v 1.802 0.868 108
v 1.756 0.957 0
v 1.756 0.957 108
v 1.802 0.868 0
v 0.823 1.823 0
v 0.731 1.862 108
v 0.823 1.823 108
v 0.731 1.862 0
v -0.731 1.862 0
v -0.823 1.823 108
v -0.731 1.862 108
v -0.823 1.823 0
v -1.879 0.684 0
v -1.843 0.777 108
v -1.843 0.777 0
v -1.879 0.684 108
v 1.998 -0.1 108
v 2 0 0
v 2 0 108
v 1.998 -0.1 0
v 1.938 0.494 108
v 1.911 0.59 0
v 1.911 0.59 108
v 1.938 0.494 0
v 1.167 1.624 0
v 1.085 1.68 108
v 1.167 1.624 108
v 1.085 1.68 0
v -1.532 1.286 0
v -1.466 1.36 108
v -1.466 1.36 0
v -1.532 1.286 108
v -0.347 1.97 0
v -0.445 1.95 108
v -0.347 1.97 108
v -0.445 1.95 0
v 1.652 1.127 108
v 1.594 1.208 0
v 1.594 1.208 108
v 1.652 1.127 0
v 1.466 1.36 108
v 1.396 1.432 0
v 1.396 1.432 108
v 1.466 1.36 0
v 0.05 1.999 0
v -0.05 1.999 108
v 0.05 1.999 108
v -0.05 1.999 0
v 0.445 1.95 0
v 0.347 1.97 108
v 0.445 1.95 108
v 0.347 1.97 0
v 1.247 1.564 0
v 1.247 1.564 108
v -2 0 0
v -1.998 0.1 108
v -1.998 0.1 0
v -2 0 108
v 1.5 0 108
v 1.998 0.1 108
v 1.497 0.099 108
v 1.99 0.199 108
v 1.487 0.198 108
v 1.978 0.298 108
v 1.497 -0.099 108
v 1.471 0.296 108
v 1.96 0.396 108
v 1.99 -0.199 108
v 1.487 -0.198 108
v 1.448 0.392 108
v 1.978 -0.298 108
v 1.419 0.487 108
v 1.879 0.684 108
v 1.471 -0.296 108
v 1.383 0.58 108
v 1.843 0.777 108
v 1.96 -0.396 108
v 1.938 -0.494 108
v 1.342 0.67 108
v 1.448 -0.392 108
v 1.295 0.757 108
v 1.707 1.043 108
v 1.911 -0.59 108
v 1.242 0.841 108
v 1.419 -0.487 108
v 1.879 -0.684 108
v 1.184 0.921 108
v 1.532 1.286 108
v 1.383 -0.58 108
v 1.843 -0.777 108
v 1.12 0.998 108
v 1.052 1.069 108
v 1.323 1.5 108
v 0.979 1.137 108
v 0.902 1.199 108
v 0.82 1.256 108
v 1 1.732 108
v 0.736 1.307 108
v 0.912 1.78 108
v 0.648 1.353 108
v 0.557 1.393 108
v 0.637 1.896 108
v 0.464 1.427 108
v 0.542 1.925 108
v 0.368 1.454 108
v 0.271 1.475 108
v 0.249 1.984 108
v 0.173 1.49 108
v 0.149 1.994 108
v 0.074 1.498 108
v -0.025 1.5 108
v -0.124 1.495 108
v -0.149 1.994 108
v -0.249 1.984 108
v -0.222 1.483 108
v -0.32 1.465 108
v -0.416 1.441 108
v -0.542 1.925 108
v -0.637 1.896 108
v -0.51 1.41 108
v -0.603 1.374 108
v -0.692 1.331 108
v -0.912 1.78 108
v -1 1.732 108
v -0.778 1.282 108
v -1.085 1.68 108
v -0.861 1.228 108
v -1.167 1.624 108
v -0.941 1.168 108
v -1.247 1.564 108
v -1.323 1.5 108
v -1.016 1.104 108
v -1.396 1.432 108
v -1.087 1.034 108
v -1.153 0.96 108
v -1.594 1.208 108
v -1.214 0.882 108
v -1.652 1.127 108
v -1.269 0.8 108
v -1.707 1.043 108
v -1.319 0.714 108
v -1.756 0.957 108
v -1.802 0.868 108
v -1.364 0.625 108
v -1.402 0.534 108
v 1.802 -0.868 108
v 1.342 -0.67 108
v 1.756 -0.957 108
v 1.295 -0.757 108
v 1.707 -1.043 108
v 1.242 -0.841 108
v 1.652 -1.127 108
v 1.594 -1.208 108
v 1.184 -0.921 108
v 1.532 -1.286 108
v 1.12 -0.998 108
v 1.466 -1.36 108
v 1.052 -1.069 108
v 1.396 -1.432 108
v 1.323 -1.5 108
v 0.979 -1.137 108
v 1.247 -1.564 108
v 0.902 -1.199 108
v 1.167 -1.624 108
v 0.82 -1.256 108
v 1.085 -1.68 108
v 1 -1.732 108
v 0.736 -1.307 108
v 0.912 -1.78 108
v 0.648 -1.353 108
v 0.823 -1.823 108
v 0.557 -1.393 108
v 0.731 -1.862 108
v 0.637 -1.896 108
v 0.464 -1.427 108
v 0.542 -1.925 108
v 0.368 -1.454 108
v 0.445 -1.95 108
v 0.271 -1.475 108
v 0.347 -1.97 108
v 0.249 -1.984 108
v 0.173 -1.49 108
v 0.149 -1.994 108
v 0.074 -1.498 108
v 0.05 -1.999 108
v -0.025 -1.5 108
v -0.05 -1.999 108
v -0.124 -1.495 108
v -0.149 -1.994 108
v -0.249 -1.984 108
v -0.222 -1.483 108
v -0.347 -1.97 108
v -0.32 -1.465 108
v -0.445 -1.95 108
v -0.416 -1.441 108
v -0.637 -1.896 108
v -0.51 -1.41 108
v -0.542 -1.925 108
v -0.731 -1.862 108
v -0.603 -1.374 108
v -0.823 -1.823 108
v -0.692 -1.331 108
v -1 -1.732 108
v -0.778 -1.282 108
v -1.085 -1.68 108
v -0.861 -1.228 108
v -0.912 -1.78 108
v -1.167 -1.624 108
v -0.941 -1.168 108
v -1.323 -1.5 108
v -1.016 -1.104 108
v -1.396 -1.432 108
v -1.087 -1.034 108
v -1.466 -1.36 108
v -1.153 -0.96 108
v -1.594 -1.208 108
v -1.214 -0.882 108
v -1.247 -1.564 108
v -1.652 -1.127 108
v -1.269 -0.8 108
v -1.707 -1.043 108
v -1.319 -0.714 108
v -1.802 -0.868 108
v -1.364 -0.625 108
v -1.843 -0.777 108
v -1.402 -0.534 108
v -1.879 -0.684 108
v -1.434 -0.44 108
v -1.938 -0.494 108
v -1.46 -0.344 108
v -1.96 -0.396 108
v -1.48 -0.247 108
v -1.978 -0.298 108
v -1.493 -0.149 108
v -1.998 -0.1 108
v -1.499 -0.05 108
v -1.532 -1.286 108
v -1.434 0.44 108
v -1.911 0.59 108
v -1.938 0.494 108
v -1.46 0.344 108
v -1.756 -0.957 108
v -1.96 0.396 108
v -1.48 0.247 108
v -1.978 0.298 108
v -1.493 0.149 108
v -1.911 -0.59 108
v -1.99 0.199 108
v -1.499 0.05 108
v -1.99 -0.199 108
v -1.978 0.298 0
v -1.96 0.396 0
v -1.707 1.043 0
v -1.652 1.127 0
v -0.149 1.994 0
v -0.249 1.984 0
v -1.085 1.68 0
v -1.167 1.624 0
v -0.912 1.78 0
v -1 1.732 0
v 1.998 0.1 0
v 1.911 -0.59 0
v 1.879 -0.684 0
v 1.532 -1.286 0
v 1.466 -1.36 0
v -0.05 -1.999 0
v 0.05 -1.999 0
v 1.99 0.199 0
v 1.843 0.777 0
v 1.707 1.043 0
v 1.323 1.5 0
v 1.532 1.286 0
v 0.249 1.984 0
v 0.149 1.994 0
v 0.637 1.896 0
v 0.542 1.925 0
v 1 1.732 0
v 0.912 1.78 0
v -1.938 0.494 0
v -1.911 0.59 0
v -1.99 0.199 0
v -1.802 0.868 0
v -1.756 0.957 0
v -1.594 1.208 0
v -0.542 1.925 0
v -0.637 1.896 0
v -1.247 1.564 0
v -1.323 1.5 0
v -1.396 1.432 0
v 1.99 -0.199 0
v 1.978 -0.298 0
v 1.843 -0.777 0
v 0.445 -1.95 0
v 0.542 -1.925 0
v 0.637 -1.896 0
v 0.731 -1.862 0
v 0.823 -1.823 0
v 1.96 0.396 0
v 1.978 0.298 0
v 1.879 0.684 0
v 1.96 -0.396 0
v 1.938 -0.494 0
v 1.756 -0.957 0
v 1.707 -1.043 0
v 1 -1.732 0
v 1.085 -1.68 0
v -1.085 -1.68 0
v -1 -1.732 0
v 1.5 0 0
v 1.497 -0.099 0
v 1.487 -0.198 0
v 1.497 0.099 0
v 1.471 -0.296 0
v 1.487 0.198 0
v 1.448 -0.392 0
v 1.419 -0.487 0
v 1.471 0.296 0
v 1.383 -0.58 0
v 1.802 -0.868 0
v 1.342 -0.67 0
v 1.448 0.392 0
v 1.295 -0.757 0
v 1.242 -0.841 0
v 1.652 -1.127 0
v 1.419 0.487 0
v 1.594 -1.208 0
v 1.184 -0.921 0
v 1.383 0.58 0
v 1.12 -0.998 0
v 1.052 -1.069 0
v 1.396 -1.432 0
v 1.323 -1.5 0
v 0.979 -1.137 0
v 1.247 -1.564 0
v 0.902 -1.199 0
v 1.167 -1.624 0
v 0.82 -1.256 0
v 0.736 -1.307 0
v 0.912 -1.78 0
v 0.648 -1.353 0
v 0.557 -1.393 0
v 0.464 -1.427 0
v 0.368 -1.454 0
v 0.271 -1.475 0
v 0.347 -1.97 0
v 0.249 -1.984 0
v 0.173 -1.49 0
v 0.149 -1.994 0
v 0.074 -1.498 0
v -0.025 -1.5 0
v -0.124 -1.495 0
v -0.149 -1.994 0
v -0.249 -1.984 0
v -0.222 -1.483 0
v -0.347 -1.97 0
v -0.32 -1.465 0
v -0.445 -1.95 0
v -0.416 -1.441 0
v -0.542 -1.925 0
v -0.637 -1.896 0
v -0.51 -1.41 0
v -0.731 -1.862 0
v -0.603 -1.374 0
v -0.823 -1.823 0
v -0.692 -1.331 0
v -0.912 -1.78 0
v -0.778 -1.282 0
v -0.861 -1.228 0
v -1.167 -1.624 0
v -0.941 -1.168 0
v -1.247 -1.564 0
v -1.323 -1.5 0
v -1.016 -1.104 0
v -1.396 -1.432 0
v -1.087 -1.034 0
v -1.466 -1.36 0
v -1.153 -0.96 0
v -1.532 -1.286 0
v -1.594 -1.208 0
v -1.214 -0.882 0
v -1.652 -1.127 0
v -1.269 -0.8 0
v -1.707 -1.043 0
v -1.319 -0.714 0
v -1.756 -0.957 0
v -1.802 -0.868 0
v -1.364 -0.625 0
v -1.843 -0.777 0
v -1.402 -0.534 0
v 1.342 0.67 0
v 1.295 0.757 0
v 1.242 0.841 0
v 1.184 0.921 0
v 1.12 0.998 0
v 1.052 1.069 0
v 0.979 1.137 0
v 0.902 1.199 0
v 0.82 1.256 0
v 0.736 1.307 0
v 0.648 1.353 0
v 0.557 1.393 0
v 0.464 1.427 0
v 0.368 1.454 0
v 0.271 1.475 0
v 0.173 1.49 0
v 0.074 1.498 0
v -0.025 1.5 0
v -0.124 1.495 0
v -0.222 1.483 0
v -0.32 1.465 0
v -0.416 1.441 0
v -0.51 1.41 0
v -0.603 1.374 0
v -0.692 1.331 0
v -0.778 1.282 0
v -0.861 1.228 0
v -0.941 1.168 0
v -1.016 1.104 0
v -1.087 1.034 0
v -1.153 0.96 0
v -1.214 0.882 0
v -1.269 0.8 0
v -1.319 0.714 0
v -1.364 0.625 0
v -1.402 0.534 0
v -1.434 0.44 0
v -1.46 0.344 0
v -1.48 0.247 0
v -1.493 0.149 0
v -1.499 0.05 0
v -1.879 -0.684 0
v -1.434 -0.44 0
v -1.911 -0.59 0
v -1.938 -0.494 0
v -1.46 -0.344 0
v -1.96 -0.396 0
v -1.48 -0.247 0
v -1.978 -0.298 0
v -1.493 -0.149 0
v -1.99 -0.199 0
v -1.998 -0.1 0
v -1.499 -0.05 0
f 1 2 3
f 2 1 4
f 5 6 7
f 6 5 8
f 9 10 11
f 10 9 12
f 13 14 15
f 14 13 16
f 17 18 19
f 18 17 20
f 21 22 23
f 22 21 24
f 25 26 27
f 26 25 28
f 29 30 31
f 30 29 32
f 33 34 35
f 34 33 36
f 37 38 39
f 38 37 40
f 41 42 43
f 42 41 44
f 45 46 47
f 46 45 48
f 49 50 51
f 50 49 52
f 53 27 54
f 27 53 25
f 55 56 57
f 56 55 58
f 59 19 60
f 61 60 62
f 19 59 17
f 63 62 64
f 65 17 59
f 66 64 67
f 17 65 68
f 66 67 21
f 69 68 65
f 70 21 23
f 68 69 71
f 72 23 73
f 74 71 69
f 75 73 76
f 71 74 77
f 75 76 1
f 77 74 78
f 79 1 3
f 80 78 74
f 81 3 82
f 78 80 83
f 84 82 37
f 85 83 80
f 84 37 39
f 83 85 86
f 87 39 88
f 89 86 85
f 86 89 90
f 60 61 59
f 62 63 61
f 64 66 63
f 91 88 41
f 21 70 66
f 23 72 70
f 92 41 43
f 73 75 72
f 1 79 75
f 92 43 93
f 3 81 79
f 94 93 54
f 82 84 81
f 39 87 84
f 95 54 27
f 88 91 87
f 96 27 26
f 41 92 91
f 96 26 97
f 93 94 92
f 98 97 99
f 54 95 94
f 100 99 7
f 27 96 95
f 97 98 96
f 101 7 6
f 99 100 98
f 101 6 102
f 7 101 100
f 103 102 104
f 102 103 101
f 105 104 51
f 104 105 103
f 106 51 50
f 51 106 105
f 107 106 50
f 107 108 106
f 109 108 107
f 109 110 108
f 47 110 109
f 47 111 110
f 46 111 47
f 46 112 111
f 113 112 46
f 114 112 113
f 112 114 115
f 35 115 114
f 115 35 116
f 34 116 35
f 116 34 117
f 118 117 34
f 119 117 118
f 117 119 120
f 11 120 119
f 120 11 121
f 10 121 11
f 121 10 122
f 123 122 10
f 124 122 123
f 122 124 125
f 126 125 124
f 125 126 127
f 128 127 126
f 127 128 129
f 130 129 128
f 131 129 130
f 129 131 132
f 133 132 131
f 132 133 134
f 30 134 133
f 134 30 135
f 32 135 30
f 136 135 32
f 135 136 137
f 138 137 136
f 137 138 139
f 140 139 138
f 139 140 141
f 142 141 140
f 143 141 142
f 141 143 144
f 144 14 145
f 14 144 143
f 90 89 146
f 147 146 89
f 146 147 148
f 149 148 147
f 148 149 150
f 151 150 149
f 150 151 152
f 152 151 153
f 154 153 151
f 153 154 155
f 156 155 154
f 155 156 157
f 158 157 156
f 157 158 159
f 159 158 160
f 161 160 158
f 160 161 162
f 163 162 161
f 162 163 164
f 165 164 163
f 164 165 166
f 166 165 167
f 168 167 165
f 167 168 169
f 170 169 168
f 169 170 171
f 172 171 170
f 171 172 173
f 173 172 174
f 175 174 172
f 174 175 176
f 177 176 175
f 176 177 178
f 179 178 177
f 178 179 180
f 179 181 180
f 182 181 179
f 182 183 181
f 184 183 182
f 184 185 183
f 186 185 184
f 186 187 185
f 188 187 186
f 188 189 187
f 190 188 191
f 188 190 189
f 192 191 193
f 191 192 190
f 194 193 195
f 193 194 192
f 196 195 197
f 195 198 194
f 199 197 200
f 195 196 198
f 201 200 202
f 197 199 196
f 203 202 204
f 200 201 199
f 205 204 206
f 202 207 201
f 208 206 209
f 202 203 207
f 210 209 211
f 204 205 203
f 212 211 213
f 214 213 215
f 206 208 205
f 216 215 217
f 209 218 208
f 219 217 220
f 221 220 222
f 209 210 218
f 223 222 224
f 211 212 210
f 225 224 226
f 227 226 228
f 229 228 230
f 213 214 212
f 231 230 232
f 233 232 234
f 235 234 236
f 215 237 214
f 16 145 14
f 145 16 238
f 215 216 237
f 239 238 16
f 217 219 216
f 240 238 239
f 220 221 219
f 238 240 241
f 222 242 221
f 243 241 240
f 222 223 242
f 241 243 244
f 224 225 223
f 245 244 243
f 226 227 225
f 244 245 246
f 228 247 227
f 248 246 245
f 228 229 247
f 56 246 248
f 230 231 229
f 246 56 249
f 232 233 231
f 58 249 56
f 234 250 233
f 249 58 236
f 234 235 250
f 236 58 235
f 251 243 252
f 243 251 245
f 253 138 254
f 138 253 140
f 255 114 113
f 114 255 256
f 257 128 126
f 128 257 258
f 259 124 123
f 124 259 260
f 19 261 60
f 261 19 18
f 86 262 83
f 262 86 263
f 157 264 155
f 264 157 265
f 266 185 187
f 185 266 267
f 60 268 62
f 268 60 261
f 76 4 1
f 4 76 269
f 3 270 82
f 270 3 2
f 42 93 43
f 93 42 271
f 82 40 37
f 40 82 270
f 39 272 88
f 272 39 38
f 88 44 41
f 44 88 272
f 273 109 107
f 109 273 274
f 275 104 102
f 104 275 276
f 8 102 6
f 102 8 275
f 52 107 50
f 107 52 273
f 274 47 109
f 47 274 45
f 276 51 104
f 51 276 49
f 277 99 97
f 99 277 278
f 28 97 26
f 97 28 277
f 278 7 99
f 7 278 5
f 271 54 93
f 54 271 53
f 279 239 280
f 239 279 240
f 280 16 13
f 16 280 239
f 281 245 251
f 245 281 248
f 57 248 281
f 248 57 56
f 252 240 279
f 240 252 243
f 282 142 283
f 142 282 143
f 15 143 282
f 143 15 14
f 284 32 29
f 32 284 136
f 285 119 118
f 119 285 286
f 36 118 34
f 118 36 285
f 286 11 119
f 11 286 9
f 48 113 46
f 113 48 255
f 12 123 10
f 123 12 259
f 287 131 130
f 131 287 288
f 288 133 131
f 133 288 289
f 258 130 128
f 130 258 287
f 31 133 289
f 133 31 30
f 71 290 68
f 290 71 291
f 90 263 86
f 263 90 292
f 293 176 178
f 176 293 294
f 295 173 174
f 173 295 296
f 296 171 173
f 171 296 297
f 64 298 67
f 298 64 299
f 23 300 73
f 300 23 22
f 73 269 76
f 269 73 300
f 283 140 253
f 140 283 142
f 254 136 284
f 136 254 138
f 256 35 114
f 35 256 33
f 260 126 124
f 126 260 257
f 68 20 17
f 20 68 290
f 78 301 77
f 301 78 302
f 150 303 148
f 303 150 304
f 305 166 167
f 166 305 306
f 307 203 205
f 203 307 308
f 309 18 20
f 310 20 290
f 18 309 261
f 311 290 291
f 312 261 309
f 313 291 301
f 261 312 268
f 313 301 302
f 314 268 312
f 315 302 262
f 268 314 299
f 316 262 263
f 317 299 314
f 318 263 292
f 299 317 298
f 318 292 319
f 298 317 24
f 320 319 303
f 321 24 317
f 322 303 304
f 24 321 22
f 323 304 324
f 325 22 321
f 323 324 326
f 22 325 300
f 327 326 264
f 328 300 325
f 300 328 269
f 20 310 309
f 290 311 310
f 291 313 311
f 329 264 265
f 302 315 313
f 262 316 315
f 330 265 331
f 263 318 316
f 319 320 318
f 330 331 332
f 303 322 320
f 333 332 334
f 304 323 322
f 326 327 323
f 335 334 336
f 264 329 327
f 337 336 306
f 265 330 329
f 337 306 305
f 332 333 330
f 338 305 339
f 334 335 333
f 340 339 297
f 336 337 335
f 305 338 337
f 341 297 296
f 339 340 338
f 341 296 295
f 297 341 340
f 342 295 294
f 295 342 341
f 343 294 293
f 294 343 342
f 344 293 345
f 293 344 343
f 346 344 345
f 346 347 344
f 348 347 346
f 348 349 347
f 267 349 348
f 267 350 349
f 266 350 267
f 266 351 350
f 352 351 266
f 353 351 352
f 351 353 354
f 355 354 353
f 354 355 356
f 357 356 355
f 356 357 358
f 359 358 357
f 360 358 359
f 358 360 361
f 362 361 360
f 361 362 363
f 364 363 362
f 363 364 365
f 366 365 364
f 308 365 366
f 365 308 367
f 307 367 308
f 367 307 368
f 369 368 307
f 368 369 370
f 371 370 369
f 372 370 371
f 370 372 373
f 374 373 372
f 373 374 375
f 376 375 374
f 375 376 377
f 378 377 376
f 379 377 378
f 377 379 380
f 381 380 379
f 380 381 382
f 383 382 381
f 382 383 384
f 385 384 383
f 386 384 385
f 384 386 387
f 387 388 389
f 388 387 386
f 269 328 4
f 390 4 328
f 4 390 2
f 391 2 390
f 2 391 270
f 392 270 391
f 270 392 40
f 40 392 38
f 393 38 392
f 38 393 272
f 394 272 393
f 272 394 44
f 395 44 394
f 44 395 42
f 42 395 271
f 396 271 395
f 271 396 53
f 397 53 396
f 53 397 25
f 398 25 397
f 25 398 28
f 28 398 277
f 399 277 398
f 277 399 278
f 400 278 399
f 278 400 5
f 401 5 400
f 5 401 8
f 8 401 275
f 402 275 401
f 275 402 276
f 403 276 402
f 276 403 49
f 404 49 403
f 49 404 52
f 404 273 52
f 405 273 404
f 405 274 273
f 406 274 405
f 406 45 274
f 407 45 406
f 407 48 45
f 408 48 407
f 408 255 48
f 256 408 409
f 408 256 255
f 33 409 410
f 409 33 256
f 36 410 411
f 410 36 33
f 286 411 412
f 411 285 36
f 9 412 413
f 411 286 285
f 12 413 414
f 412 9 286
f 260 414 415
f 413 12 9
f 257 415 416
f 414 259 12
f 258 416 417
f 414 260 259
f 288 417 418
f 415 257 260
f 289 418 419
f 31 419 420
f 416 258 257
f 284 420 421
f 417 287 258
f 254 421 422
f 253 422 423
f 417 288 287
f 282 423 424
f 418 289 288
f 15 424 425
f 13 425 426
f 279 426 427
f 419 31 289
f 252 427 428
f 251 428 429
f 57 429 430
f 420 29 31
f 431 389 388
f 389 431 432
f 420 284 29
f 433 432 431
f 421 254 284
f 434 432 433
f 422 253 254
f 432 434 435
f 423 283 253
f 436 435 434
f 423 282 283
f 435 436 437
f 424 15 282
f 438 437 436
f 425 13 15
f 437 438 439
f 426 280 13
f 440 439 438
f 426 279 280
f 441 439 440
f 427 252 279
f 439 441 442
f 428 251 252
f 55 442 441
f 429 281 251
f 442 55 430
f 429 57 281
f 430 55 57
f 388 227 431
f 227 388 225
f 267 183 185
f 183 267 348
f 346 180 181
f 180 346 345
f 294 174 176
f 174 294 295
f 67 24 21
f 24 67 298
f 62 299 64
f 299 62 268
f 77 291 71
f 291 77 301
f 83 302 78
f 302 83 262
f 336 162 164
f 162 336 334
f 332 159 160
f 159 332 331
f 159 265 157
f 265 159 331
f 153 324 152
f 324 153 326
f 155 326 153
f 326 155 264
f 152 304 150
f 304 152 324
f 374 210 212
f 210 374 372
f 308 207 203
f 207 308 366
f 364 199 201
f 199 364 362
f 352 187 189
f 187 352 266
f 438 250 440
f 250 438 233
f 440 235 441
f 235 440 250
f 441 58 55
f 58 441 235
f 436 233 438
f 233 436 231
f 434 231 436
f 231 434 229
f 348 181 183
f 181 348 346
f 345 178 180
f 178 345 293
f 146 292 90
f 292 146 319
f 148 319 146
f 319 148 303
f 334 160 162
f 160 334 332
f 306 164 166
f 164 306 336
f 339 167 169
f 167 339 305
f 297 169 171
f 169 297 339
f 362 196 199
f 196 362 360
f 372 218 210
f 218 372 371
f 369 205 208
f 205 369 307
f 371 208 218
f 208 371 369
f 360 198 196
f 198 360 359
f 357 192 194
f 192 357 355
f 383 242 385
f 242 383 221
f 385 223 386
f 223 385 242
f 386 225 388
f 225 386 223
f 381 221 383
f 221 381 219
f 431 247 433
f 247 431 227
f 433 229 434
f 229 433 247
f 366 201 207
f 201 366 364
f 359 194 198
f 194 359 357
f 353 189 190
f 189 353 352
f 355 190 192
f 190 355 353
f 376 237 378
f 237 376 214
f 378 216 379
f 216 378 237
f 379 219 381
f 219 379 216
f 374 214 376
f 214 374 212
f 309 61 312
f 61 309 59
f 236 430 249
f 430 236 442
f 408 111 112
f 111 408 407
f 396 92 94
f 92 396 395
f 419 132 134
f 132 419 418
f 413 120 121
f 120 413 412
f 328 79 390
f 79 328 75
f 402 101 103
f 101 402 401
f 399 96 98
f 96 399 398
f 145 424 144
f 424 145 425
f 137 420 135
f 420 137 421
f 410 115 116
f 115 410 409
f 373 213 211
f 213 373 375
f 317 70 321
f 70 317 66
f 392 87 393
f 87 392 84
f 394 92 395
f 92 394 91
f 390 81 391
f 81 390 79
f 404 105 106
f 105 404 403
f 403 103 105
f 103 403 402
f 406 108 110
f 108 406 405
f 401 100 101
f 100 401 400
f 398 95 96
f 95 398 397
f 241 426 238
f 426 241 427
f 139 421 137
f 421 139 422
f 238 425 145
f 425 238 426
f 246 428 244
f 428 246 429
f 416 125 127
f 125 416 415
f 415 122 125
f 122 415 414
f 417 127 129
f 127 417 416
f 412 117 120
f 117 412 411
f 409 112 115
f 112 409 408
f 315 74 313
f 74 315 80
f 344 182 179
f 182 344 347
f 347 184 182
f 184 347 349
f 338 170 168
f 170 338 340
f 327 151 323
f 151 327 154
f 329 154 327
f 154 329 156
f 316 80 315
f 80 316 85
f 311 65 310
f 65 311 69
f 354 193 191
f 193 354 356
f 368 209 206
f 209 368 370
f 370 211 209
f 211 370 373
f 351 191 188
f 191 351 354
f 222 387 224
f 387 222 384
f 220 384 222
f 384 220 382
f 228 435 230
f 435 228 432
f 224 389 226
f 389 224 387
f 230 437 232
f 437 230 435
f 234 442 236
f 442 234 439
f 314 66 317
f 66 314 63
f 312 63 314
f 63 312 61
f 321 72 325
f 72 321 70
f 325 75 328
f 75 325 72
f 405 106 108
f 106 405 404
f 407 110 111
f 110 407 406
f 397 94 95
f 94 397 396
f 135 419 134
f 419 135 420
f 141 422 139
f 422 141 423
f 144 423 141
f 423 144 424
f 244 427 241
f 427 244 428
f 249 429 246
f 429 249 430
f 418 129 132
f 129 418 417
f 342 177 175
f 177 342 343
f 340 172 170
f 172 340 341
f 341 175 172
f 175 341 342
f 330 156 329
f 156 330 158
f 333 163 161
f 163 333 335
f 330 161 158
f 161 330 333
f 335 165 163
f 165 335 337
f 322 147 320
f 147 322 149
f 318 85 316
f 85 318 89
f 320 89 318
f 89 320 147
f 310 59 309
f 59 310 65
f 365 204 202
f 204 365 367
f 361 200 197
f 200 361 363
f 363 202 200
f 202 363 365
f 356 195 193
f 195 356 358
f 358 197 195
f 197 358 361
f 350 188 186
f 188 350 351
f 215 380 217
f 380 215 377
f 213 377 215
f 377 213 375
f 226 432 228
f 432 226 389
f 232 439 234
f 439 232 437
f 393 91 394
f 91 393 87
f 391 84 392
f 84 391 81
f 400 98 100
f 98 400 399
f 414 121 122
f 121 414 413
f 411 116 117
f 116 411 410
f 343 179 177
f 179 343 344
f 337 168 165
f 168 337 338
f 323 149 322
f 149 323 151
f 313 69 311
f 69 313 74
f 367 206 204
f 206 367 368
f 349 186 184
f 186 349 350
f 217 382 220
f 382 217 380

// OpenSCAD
$fa=0.1;$fs=0.1;

$fieldWidth=36;
$fieldDepth=9;
$boardHeight=1;
$fieldDistance=12;
$hingeDiameter=4;
$hingeWall=2;
$hingeLength=4;

h=$fieldDistance*3+$fieldWidth*2;
w=$fieldDistance*9+$fieldWidth*8;
d=$boardHeight+$fieldDepth;

difference() {
cylinder(d=$hingeDiameter, h=h);
cylinder(d=$hingeDiameter-1, h=h);
}
